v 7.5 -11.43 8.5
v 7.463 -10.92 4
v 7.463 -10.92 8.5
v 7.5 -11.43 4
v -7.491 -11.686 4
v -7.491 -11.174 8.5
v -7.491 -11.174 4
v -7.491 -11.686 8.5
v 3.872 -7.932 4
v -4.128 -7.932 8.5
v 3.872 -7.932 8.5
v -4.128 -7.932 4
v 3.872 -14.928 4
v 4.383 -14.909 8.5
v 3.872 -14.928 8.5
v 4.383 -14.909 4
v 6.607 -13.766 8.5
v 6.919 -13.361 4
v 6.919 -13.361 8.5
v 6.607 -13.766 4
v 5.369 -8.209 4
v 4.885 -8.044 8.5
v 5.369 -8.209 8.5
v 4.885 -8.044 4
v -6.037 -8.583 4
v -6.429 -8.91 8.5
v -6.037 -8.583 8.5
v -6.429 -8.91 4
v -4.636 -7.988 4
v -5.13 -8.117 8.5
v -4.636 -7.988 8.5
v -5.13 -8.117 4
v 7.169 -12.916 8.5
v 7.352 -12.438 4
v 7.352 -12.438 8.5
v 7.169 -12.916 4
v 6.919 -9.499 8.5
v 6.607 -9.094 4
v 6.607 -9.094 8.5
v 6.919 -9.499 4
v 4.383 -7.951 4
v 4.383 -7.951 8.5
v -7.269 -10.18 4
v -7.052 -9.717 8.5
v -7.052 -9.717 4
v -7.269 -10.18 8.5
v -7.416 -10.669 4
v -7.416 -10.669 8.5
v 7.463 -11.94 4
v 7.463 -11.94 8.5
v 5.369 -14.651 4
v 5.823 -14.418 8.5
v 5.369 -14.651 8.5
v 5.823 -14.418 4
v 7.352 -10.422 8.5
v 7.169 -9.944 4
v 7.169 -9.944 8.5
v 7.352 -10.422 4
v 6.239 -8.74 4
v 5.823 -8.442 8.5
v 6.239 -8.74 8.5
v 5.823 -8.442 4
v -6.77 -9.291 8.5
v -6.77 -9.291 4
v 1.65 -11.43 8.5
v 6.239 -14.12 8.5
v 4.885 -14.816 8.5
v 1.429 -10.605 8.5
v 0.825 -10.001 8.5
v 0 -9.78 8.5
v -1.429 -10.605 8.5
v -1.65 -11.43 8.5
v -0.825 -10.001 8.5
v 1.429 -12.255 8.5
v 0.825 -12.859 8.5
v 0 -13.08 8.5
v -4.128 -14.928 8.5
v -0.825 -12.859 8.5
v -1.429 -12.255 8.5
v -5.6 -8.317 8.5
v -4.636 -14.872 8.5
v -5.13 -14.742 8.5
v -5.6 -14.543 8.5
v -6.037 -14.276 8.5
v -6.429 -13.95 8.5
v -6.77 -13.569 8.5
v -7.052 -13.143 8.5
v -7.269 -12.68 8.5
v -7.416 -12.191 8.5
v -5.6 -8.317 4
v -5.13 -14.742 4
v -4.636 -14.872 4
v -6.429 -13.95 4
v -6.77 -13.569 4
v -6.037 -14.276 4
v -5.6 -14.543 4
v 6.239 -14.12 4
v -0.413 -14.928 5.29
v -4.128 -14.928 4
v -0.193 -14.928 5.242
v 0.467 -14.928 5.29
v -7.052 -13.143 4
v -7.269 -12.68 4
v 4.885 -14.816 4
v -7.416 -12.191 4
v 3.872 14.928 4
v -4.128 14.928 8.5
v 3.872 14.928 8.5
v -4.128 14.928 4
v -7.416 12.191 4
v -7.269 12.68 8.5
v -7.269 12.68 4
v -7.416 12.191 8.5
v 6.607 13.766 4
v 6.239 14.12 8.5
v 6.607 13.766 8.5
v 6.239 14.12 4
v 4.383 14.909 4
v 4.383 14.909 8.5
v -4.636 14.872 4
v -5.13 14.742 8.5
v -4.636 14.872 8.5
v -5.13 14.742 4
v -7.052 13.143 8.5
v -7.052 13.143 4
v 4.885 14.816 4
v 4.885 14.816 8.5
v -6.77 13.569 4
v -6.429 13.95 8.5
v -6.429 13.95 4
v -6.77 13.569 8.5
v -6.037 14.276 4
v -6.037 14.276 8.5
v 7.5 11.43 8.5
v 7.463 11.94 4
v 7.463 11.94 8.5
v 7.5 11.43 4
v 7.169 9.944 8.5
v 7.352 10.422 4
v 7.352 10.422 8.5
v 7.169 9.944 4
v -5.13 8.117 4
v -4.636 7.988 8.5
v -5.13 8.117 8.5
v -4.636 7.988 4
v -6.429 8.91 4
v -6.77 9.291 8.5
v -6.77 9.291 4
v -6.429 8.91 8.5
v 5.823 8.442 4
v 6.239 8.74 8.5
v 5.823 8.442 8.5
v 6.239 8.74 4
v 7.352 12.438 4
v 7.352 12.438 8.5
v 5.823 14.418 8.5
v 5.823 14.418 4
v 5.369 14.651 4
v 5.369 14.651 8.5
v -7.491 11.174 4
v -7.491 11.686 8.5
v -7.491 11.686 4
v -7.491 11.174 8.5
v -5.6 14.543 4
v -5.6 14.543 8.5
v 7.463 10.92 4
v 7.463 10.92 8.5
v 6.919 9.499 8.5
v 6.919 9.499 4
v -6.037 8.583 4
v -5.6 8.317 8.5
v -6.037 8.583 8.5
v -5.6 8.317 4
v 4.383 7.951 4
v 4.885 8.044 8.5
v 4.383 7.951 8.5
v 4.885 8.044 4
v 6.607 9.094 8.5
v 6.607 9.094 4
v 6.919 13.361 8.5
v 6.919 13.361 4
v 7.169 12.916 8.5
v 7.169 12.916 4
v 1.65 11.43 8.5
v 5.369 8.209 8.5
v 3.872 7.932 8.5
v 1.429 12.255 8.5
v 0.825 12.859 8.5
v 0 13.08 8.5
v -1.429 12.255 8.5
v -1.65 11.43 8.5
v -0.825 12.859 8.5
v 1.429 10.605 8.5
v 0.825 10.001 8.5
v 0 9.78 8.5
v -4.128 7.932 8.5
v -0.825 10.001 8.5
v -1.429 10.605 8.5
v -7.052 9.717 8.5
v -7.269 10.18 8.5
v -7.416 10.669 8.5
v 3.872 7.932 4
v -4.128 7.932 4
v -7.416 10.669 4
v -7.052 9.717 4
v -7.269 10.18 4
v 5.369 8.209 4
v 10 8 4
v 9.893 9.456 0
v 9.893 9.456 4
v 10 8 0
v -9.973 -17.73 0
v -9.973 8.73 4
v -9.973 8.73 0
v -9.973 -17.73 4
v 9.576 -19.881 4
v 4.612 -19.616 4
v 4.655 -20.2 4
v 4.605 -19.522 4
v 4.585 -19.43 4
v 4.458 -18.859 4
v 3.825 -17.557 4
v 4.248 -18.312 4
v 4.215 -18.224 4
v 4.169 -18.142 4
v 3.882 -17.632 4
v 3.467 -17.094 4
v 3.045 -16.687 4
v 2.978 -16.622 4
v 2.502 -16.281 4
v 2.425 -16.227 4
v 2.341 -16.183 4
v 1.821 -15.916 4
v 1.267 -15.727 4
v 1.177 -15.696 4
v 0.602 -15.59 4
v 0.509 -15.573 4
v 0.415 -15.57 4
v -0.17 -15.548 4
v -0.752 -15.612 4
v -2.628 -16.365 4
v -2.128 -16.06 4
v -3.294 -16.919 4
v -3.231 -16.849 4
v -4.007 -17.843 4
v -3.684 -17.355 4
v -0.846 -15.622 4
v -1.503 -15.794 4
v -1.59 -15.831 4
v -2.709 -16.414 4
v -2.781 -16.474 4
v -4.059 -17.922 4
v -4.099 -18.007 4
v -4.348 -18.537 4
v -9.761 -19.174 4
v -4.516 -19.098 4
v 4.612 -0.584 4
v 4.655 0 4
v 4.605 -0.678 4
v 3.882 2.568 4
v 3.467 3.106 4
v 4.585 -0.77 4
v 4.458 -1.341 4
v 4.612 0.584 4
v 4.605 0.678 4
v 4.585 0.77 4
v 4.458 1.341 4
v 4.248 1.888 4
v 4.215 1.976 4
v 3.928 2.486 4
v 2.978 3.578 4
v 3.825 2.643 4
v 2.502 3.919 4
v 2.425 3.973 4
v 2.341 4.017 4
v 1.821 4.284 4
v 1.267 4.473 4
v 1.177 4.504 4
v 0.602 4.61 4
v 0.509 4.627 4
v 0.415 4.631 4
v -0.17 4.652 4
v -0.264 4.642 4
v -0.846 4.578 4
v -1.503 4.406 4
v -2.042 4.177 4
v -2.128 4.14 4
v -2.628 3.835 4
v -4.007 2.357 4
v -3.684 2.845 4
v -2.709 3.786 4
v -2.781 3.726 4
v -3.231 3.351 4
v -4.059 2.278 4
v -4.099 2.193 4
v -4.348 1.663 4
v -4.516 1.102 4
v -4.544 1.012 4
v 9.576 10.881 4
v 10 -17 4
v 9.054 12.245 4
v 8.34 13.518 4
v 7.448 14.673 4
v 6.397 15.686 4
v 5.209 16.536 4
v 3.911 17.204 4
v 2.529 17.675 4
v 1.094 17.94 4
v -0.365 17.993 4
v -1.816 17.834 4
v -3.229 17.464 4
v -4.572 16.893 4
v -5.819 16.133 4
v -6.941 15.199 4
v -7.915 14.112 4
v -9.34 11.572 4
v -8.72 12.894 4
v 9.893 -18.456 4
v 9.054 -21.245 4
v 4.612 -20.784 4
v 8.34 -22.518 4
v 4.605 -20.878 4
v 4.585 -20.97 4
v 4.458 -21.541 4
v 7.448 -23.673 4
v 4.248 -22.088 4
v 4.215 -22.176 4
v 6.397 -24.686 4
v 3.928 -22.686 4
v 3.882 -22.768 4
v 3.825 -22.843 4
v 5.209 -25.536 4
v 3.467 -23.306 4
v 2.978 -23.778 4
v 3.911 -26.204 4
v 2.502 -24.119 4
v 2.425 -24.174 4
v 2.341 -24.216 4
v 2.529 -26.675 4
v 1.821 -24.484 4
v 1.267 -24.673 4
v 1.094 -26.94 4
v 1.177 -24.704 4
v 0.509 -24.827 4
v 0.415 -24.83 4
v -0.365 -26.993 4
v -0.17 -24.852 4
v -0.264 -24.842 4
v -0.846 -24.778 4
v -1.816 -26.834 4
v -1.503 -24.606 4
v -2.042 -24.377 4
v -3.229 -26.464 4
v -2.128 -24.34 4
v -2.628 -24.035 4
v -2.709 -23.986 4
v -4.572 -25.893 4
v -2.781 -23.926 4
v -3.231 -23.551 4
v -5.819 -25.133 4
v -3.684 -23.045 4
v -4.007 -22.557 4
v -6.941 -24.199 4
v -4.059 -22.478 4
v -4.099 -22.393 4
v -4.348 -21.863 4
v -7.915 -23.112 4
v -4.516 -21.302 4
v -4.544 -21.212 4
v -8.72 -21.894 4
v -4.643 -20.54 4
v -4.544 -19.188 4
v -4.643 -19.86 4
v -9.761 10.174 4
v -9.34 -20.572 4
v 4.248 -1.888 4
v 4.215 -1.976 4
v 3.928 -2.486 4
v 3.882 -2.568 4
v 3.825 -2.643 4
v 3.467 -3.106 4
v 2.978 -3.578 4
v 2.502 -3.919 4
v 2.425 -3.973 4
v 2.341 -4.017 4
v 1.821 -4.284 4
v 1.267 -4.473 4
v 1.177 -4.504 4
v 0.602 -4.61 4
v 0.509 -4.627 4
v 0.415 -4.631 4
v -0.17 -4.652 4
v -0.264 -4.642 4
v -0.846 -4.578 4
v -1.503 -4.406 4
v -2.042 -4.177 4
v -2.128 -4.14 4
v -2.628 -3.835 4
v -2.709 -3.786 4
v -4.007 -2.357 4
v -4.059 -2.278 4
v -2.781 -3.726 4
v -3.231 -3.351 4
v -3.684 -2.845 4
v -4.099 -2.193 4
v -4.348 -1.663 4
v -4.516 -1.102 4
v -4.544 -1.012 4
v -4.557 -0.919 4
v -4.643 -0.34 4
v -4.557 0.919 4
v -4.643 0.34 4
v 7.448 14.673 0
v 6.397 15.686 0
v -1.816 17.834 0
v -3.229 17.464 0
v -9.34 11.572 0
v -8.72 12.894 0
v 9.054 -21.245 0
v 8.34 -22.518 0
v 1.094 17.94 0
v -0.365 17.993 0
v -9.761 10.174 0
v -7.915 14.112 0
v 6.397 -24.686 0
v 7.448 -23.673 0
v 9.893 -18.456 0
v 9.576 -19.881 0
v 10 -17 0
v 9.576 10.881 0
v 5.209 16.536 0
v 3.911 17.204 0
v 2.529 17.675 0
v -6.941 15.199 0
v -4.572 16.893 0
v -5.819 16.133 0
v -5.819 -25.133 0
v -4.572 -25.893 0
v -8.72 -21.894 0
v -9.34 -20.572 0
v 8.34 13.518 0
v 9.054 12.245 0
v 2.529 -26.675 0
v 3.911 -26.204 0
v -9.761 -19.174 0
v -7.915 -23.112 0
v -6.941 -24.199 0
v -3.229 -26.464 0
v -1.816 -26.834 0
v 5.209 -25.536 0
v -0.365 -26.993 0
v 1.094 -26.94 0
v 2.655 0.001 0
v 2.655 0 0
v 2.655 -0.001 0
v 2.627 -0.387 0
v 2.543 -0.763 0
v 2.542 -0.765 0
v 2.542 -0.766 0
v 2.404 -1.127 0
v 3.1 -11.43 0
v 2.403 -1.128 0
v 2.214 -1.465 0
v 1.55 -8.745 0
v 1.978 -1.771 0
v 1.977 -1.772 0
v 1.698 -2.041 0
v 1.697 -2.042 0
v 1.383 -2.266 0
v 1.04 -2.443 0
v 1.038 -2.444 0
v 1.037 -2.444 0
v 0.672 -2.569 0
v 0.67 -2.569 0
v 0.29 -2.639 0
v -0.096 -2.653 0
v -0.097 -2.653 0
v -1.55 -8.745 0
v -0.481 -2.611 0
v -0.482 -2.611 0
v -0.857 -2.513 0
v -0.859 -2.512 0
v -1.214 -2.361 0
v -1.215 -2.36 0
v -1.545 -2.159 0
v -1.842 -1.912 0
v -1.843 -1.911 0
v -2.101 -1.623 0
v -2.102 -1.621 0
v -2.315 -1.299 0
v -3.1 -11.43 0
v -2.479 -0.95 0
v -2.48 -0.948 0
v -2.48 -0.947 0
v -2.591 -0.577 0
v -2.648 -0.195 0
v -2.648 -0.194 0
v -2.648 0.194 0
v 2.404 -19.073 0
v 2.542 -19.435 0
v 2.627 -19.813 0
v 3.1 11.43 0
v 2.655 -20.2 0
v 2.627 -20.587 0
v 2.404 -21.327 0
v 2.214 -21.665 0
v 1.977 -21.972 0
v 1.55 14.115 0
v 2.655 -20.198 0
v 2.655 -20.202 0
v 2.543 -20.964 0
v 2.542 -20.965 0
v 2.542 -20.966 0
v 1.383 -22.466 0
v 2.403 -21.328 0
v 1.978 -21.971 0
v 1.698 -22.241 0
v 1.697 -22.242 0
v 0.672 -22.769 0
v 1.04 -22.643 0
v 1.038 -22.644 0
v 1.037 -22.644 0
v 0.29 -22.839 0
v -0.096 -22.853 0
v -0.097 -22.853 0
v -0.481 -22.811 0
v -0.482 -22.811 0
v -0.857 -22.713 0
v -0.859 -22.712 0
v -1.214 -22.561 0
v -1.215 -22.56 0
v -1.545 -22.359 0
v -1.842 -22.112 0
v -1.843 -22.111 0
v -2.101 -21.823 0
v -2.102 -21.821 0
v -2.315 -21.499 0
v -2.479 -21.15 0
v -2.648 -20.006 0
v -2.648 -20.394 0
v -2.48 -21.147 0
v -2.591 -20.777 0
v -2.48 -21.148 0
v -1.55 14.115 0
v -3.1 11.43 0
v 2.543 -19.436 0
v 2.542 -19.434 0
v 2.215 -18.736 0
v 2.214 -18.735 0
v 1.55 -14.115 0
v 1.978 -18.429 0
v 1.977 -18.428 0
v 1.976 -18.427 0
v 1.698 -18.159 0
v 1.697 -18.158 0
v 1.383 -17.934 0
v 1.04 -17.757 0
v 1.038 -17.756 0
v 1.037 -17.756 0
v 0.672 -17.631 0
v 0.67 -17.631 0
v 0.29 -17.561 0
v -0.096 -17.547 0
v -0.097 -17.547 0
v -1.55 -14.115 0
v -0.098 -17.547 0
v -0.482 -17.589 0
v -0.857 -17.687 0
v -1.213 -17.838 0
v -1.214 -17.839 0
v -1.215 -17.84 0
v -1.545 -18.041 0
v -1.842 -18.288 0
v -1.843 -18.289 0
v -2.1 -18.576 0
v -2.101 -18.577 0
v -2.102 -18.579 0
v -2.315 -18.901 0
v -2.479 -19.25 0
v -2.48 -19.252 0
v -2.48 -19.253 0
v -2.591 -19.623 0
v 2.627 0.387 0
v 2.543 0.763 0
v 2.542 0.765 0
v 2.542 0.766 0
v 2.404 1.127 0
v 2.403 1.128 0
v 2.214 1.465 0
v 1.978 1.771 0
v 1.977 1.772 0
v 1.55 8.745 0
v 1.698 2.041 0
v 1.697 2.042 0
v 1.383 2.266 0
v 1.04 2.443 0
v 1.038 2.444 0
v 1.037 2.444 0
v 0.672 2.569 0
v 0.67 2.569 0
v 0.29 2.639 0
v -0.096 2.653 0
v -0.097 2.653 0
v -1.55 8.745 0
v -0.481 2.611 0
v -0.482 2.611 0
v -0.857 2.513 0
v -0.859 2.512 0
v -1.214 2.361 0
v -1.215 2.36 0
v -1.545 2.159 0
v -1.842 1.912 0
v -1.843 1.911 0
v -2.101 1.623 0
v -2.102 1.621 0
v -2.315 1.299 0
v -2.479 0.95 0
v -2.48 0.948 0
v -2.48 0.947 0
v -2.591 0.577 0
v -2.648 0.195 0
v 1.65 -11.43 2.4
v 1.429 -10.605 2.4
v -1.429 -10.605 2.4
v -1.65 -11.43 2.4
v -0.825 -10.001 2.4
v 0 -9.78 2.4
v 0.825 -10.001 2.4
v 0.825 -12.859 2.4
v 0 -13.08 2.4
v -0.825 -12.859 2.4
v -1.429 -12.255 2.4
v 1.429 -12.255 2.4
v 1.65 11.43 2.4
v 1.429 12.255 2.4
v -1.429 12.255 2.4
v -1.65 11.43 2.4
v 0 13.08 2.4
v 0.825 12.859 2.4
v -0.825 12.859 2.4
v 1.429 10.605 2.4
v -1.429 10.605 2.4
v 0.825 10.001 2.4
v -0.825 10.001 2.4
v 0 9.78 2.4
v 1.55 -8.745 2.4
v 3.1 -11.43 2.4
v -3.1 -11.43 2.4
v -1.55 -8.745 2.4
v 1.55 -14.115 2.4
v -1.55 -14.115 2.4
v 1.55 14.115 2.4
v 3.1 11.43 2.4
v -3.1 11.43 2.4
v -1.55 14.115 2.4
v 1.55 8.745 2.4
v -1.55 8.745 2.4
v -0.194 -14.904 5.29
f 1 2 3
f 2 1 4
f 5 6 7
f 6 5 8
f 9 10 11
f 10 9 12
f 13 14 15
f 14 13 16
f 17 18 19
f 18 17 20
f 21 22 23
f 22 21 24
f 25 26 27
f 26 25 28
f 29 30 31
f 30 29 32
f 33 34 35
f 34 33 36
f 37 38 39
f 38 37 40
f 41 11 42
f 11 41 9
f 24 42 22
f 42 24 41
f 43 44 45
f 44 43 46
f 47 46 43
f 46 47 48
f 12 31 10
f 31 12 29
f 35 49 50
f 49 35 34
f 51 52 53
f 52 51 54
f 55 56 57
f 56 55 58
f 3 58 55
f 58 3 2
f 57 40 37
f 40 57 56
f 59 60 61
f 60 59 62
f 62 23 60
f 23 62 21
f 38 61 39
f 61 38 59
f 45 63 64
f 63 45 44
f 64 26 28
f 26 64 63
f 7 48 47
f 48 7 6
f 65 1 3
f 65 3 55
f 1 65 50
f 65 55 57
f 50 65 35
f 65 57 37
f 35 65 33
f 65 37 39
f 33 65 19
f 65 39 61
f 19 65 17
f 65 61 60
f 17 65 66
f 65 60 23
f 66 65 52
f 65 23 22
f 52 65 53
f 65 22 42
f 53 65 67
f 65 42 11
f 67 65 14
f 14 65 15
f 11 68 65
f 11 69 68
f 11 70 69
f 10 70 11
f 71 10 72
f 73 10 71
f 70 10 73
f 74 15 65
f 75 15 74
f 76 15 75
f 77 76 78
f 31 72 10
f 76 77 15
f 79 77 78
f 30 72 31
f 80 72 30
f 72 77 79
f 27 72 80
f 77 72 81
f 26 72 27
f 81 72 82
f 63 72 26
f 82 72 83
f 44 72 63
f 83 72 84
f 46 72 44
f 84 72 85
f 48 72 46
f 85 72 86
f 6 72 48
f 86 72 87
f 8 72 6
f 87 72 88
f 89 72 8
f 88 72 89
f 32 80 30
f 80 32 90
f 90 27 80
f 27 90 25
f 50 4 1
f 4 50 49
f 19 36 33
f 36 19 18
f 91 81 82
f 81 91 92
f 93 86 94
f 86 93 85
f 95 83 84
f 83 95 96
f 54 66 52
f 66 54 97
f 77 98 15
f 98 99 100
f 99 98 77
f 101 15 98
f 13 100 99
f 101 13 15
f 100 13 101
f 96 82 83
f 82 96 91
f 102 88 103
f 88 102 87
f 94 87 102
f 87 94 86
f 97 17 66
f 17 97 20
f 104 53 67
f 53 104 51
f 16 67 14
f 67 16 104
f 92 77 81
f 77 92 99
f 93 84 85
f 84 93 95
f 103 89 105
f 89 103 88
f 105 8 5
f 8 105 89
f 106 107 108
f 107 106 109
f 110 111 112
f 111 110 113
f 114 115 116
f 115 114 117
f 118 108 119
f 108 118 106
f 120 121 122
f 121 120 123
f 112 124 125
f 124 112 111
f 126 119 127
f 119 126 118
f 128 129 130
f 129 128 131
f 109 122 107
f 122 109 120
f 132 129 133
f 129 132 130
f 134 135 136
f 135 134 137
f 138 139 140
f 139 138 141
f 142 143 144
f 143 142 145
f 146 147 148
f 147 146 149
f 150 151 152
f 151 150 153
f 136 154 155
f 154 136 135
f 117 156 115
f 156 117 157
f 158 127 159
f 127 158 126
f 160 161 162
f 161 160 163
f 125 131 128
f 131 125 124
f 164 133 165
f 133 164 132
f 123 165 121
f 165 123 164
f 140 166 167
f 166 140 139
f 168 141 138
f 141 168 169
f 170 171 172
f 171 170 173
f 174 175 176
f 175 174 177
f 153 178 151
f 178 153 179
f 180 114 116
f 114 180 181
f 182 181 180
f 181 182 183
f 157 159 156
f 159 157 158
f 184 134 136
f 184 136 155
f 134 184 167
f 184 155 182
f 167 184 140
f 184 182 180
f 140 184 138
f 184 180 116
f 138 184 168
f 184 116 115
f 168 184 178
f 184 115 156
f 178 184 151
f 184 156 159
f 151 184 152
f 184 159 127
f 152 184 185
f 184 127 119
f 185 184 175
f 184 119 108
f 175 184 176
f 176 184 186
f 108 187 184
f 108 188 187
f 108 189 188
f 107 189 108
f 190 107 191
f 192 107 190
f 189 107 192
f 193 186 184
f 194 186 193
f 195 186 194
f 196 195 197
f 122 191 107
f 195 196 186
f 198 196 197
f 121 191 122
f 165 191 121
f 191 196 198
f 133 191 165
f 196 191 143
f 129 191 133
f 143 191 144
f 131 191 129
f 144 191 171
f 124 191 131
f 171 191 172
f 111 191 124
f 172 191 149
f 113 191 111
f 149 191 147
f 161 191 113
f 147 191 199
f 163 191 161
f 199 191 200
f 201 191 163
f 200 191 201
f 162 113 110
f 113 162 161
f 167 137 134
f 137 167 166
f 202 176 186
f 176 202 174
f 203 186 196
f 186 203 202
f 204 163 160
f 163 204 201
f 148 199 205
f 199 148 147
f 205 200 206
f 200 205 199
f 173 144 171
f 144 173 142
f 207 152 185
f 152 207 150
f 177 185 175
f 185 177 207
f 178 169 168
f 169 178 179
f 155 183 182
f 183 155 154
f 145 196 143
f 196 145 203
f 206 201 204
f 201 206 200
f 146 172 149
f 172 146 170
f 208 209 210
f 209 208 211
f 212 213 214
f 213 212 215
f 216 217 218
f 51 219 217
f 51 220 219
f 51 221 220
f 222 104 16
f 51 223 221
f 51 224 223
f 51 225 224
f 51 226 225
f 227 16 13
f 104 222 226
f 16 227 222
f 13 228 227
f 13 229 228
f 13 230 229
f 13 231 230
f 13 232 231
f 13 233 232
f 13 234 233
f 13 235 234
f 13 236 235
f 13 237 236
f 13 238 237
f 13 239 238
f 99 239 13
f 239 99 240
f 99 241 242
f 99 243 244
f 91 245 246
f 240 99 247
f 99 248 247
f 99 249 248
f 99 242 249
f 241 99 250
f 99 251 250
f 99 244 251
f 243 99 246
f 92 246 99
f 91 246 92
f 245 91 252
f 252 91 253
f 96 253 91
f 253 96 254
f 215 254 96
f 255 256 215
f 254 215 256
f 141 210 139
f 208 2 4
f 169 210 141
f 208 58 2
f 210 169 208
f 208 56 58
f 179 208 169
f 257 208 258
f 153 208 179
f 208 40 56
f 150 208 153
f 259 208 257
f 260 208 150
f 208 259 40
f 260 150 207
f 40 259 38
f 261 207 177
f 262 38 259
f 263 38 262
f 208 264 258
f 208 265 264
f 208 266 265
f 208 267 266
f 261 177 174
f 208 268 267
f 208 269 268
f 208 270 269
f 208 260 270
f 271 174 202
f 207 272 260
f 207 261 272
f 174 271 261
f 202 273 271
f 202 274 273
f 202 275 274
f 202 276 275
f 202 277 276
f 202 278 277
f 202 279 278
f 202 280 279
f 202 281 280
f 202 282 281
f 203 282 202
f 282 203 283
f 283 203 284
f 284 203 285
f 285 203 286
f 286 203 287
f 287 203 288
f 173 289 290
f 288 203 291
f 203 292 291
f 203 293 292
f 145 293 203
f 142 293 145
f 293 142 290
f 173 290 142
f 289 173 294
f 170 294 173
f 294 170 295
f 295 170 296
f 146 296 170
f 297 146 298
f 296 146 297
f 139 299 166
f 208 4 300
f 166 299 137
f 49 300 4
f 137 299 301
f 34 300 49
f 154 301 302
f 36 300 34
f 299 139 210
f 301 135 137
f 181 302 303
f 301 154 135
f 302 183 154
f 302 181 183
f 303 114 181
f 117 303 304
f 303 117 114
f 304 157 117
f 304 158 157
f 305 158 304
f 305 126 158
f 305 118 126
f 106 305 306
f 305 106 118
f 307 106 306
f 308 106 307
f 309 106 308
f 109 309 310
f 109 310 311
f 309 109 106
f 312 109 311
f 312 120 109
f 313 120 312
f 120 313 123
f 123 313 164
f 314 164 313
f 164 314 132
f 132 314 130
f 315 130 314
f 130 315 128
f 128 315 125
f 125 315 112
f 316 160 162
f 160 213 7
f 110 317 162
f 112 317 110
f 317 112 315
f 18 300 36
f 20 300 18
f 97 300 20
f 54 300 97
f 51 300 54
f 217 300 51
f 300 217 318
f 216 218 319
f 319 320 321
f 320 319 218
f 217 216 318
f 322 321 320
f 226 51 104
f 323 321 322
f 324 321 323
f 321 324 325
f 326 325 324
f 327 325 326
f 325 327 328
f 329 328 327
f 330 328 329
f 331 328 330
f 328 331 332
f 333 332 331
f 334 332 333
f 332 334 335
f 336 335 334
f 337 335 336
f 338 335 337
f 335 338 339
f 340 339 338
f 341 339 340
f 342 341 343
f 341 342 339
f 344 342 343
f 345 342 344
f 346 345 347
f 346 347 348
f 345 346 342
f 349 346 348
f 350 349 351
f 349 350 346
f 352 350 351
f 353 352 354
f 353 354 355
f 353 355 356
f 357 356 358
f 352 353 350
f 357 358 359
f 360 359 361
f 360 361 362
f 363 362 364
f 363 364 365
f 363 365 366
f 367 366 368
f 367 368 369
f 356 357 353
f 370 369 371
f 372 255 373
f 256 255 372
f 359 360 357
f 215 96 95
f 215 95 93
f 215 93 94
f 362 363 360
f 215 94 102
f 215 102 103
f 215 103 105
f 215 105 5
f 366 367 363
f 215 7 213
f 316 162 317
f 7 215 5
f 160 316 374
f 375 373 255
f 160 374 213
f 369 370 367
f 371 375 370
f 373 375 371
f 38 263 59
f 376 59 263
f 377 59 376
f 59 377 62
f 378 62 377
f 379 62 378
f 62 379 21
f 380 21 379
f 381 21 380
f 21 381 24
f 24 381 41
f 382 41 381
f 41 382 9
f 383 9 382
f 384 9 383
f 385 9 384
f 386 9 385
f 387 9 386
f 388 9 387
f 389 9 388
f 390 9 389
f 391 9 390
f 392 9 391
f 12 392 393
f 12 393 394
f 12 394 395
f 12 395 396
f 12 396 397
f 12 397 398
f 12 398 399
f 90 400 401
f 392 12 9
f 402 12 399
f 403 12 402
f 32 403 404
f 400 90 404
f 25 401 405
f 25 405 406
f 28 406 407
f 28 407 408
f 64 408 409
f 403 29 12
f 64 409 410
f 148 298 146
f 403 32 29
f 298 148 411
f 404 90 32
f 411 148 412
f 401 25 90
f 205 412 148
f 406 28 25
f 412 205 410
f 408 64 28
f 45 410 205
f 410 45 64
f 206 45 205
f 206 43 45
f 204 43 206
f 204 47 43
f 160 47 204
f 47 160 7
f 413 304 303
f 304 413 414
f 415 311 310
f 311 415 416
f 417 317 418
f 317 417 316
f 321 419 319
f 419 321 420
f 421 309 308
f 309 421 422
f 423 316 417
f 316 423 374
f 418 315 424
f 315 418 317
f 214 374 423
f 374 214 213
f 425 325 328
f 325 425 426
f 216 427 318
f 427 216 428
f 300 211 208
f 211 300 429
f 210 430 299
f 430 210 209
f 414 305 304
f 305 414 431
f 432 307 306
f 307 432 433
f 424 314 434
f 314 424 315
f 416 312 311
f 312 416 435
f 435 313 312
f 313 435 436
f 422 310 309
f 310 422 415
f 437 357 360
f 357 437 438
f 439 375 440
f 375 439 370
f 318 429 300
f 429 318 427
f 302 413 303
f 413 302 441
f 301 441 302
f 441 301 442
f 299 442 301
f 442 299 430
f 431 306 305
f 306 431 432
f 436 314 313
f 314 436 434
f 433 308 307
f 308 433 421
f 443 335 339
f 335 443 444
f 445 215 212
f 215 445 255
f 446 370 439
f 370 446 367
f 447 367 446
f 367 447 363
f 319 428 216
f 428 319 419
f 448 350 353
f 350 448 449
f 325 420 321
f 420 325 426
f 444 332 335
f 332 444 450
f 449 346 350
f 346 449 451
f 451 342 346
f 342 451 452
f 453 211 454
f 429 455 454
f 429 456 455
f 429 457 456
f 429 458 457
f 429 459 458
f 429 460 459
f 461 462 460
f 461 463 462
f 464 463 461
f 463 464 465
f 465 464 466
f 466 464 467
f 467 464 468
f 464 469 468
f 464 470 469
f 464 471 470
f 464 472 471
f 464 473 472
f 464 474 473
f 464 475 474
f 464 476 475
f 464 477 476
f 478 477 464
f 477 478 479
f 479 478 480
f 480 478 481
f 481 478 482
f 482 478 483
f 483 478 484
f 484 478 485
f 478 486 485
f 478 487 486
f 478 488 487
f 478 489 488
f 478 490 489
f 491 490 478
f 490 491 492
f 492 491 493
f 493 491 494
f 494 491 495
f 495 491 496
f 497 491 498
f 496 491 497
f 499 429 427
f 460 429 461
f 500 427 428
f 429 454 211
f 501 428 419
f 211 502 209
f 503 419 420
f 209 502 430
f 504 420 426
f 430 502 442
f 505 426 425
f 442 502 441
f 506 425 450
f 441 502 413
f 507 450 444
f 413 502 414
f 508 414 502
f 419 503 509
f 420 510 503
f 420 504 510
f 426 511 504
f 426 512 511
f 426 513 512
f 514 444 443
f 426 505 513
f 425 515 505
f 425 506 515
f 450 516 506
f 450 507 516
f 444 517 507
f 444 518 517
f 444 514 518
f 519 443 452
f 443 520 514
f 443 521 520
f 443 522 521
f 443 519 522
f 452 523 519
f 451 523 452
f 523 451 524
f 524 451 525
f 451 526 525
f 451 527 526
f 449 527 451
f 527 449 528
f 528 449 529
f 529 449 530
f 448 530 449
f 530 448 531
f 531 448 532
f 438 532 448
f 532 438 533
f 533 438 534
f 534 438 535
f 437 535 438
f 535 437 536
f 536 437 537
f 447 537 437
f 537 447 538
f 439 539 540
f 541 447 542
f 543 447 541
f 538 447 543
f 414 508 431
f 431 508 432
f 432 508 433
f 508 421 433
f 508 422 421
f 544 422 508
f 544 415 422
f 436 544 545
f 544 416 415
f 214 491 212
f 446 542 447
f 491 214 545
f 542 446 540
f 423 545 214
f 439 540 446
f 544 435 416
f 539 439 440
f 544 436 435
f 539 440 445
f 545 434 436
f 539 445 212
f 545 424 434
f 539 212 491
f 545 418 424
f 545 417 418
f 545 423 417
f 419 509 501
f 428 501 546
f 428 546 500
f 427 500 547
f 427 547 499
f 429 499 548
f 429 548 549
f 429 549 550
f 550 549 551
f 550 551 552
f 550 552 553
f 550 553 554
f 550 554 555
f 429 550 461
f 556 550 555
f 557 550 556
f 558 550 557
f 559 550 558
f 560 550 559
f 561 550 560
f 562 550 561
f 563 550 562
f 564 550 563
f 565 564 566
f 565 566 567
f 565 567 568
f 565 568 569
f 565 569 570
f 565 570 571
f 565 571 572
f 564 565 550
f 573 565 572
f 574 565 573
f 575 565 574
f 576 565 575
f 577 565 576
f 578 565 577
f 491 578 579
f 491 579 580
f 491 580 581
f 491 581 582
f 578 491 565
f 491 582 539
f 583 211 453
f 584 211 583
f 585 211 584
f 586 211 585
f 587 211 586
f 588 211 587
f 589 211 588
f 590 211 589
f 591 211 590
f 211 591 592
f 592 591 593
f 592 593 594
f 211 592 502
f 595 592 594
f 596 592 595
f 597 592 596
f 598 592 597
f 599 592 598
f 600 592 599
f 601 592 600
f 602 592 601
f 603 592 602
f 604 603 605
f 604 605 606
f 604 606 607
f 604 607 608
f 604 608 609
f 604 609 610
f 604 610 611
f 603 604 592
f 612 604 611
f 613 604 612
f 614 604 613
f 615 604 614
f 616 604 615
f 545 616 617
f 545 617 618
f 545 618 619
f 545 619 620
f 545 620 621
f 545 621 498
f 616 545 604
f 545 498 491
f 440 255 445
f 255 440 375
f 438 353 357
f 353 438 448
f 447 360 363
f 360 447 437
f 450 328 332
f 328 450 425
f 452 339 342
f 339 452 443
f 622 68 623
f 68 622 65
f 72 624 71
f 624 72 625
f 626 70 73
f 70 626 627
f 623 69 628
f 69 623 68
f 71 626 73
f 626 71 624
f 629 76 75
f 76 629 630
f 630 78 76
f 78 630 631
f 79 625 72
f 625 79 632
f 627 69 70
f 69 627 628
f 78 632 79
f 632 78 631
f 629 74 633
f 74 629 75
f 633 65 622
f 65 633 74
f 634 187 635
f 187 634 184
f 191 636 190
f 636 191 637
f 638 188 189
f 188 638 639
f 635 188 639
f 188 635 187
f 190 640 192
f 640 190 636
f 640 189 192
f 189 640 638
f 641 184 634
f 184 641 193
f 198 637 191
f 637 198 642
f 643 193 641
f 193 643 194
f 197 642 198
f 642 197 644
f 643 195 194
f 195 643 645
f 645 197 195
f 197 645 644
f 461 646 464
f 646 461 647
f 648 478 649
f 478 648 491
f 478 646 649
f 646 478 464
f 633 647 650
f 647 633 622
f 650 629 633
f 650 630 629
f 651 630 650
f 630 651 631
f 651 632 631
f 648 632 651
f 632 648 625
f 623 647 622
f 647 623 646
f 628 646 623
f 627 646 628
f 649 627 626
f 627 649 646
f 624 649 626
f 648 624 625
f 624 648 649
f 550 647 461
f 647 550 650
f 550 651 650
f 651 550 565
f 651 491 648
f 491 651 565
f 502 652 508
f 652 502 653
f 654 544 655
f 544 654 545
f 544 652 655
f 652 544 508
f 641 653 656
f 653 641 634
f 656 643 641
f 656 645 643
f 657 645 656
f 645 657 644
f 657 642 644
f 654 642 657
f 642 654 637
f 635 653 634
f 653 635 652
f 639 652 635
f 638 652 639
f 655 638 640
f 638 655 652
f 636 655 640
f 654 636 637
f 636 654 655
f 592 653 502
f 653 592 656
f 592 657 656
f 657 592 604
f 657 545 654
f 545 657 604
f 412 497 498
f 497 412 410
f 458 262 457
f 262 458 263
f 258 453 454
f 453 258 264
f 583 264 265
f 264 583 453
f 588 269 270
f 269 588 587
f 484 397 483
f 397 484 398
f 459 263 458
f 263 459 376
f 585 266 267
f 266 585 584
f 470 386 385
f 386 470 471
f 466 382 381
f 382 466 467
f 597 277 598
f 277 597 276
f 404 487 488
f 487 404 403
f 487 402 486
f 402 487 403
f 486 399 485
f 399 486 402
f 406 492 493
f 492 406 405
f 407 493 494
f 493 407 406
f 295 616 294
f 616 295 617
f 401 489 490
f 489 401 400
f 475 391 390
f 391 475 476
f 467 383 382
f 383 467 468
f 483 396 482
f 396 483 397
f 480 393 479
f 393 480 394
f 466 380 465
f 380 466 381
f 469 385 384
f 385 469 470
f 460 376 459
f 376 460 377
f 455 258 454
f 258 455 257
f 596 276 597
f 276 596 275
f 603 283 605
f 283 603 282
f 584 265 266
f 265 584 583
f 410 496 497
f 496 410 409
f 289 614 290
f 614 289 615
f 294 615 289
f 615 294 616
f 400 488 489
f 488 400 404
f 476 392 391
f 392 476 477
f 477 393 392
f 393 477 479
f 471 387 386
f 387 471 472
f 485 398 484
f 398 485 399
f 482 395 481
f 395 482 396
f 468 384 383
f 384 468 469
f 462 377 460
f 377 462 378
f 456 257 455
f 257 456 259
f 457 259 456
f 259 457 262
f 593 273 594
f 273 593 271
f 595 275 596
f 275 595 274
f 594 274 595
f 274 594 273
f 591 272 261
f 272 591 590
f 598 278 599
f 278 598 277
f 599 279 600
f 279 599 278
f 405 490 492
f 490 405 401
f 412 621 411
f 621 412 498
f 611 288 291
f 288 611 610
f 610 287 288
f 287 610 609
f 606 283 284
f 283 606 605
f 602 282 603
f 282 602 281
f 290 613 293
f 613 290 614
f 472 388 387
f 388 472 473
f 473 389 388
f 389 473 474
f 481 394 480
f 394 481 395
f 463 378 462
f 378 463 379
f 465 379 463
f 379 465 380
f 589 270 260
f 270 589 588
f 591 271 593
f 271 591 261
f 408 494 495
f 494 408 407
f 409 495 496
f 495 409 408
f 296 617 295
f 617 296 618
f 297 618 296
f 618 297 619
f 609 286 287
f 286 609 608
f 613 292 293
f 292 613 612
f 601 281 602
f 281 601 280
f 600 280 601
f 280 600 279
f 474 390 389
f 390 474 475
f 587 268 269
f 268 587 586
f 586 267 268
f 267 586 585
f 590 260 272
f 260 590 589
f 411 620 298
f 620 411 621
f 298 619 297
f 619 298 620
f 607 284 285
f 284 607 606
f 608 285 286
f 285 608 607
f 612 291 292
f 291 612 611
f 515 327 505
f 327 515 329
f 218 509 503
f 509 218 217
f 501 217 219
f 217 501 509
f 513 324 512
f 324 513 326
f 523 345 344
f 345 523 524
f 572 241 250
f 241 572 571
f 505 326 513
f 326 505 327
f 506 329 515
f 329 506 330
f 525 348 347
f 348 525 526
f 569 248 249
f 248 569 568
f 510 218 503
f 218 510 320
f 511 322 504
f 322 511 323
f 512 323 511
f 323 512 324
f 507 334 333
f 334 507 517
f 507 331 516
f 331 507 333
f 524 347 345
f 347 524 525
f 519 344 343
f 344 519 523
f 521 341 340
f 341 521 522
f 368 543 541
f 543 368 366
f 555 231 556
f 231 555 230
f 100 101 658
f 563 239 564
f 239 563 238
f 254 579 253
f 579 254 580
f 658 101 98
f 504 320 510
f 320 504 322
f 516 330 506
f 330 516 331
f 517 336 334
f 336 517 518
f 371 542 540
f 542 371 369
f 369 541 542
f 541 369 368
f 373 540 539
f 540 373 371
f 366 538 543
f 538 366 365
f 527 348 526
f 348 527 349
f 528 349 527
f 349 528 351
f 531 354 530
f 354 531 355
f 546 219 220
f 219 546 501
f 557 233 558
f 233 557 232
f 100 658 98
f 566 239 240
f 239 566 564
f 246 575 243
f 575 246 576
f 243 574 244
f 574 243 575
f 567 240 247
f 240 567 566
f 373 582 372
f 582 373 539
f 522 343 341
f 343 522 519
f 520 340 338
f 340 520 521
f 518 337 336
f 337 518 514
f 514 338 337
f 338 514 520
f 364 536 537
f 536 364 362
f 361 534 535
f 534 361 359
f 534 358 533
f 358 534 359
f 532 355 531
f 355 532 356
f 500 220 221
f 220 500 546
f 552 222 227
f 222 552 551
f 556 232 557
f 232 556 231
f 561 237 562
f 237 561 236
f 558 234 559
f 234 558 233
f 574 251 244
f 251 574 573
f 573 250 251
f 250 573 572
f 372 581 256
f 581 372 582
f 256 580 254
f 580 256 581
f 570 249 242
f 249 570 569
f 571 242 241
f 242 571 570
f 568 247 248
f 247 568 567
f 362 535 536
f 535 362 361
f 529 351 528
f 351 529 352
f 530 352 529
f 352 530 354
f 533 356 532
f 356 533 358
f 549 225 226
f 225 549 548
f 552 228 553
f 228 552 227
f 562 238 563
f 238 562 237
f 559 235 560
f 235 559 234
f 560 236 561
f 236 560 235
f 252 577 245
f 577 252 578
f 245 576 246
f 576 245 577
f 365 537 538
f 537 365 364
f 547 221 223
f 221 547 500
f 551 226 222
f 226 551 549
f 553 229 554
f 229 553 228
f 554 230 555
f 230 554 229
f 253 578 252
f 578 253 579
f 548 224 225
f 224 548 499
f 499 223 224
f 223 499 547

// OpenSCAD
$fn=43;
dist_boardmount=22.86;

difference(){
	union() {
		//boardmount stummel
		for(j=[-1,1])
			translate([0,j*dist_boardmount/2,1])
				hull()
					for(i=[-1,1])
						translate([i*4,0,0])
							cylinder(r=7/2,h=8.5-1);
		hull() {
			translate([0,8,2])
				cylinder(r=10,h=4,center=true);
			translate([0,-17,2])
				cylinder(r=10,h=4,center=true);
		}
	}
	//boardmount schrauben
	for(j=[-1,1])
		translate([0,j*dist_boardmount/2,0])
			cylinder($fn=12,r=3.3/2,h=30,center=true);
	//boardmount muttern
	for(j=[-1,1])
		translate([0,j*dist_boardmount/2,0])
			cylinder($fn=6,r=6.2/2,h=2.4*2,center=true);
	//alumount
	translate([0,0,-0.01]) cylinder(r1=5.3/2,r2=5.3,h=5.3);
	translate([0,-20.2,-0.01]) cylinder(r1=5.3/2,r2=5.3,h=5.3);
}
